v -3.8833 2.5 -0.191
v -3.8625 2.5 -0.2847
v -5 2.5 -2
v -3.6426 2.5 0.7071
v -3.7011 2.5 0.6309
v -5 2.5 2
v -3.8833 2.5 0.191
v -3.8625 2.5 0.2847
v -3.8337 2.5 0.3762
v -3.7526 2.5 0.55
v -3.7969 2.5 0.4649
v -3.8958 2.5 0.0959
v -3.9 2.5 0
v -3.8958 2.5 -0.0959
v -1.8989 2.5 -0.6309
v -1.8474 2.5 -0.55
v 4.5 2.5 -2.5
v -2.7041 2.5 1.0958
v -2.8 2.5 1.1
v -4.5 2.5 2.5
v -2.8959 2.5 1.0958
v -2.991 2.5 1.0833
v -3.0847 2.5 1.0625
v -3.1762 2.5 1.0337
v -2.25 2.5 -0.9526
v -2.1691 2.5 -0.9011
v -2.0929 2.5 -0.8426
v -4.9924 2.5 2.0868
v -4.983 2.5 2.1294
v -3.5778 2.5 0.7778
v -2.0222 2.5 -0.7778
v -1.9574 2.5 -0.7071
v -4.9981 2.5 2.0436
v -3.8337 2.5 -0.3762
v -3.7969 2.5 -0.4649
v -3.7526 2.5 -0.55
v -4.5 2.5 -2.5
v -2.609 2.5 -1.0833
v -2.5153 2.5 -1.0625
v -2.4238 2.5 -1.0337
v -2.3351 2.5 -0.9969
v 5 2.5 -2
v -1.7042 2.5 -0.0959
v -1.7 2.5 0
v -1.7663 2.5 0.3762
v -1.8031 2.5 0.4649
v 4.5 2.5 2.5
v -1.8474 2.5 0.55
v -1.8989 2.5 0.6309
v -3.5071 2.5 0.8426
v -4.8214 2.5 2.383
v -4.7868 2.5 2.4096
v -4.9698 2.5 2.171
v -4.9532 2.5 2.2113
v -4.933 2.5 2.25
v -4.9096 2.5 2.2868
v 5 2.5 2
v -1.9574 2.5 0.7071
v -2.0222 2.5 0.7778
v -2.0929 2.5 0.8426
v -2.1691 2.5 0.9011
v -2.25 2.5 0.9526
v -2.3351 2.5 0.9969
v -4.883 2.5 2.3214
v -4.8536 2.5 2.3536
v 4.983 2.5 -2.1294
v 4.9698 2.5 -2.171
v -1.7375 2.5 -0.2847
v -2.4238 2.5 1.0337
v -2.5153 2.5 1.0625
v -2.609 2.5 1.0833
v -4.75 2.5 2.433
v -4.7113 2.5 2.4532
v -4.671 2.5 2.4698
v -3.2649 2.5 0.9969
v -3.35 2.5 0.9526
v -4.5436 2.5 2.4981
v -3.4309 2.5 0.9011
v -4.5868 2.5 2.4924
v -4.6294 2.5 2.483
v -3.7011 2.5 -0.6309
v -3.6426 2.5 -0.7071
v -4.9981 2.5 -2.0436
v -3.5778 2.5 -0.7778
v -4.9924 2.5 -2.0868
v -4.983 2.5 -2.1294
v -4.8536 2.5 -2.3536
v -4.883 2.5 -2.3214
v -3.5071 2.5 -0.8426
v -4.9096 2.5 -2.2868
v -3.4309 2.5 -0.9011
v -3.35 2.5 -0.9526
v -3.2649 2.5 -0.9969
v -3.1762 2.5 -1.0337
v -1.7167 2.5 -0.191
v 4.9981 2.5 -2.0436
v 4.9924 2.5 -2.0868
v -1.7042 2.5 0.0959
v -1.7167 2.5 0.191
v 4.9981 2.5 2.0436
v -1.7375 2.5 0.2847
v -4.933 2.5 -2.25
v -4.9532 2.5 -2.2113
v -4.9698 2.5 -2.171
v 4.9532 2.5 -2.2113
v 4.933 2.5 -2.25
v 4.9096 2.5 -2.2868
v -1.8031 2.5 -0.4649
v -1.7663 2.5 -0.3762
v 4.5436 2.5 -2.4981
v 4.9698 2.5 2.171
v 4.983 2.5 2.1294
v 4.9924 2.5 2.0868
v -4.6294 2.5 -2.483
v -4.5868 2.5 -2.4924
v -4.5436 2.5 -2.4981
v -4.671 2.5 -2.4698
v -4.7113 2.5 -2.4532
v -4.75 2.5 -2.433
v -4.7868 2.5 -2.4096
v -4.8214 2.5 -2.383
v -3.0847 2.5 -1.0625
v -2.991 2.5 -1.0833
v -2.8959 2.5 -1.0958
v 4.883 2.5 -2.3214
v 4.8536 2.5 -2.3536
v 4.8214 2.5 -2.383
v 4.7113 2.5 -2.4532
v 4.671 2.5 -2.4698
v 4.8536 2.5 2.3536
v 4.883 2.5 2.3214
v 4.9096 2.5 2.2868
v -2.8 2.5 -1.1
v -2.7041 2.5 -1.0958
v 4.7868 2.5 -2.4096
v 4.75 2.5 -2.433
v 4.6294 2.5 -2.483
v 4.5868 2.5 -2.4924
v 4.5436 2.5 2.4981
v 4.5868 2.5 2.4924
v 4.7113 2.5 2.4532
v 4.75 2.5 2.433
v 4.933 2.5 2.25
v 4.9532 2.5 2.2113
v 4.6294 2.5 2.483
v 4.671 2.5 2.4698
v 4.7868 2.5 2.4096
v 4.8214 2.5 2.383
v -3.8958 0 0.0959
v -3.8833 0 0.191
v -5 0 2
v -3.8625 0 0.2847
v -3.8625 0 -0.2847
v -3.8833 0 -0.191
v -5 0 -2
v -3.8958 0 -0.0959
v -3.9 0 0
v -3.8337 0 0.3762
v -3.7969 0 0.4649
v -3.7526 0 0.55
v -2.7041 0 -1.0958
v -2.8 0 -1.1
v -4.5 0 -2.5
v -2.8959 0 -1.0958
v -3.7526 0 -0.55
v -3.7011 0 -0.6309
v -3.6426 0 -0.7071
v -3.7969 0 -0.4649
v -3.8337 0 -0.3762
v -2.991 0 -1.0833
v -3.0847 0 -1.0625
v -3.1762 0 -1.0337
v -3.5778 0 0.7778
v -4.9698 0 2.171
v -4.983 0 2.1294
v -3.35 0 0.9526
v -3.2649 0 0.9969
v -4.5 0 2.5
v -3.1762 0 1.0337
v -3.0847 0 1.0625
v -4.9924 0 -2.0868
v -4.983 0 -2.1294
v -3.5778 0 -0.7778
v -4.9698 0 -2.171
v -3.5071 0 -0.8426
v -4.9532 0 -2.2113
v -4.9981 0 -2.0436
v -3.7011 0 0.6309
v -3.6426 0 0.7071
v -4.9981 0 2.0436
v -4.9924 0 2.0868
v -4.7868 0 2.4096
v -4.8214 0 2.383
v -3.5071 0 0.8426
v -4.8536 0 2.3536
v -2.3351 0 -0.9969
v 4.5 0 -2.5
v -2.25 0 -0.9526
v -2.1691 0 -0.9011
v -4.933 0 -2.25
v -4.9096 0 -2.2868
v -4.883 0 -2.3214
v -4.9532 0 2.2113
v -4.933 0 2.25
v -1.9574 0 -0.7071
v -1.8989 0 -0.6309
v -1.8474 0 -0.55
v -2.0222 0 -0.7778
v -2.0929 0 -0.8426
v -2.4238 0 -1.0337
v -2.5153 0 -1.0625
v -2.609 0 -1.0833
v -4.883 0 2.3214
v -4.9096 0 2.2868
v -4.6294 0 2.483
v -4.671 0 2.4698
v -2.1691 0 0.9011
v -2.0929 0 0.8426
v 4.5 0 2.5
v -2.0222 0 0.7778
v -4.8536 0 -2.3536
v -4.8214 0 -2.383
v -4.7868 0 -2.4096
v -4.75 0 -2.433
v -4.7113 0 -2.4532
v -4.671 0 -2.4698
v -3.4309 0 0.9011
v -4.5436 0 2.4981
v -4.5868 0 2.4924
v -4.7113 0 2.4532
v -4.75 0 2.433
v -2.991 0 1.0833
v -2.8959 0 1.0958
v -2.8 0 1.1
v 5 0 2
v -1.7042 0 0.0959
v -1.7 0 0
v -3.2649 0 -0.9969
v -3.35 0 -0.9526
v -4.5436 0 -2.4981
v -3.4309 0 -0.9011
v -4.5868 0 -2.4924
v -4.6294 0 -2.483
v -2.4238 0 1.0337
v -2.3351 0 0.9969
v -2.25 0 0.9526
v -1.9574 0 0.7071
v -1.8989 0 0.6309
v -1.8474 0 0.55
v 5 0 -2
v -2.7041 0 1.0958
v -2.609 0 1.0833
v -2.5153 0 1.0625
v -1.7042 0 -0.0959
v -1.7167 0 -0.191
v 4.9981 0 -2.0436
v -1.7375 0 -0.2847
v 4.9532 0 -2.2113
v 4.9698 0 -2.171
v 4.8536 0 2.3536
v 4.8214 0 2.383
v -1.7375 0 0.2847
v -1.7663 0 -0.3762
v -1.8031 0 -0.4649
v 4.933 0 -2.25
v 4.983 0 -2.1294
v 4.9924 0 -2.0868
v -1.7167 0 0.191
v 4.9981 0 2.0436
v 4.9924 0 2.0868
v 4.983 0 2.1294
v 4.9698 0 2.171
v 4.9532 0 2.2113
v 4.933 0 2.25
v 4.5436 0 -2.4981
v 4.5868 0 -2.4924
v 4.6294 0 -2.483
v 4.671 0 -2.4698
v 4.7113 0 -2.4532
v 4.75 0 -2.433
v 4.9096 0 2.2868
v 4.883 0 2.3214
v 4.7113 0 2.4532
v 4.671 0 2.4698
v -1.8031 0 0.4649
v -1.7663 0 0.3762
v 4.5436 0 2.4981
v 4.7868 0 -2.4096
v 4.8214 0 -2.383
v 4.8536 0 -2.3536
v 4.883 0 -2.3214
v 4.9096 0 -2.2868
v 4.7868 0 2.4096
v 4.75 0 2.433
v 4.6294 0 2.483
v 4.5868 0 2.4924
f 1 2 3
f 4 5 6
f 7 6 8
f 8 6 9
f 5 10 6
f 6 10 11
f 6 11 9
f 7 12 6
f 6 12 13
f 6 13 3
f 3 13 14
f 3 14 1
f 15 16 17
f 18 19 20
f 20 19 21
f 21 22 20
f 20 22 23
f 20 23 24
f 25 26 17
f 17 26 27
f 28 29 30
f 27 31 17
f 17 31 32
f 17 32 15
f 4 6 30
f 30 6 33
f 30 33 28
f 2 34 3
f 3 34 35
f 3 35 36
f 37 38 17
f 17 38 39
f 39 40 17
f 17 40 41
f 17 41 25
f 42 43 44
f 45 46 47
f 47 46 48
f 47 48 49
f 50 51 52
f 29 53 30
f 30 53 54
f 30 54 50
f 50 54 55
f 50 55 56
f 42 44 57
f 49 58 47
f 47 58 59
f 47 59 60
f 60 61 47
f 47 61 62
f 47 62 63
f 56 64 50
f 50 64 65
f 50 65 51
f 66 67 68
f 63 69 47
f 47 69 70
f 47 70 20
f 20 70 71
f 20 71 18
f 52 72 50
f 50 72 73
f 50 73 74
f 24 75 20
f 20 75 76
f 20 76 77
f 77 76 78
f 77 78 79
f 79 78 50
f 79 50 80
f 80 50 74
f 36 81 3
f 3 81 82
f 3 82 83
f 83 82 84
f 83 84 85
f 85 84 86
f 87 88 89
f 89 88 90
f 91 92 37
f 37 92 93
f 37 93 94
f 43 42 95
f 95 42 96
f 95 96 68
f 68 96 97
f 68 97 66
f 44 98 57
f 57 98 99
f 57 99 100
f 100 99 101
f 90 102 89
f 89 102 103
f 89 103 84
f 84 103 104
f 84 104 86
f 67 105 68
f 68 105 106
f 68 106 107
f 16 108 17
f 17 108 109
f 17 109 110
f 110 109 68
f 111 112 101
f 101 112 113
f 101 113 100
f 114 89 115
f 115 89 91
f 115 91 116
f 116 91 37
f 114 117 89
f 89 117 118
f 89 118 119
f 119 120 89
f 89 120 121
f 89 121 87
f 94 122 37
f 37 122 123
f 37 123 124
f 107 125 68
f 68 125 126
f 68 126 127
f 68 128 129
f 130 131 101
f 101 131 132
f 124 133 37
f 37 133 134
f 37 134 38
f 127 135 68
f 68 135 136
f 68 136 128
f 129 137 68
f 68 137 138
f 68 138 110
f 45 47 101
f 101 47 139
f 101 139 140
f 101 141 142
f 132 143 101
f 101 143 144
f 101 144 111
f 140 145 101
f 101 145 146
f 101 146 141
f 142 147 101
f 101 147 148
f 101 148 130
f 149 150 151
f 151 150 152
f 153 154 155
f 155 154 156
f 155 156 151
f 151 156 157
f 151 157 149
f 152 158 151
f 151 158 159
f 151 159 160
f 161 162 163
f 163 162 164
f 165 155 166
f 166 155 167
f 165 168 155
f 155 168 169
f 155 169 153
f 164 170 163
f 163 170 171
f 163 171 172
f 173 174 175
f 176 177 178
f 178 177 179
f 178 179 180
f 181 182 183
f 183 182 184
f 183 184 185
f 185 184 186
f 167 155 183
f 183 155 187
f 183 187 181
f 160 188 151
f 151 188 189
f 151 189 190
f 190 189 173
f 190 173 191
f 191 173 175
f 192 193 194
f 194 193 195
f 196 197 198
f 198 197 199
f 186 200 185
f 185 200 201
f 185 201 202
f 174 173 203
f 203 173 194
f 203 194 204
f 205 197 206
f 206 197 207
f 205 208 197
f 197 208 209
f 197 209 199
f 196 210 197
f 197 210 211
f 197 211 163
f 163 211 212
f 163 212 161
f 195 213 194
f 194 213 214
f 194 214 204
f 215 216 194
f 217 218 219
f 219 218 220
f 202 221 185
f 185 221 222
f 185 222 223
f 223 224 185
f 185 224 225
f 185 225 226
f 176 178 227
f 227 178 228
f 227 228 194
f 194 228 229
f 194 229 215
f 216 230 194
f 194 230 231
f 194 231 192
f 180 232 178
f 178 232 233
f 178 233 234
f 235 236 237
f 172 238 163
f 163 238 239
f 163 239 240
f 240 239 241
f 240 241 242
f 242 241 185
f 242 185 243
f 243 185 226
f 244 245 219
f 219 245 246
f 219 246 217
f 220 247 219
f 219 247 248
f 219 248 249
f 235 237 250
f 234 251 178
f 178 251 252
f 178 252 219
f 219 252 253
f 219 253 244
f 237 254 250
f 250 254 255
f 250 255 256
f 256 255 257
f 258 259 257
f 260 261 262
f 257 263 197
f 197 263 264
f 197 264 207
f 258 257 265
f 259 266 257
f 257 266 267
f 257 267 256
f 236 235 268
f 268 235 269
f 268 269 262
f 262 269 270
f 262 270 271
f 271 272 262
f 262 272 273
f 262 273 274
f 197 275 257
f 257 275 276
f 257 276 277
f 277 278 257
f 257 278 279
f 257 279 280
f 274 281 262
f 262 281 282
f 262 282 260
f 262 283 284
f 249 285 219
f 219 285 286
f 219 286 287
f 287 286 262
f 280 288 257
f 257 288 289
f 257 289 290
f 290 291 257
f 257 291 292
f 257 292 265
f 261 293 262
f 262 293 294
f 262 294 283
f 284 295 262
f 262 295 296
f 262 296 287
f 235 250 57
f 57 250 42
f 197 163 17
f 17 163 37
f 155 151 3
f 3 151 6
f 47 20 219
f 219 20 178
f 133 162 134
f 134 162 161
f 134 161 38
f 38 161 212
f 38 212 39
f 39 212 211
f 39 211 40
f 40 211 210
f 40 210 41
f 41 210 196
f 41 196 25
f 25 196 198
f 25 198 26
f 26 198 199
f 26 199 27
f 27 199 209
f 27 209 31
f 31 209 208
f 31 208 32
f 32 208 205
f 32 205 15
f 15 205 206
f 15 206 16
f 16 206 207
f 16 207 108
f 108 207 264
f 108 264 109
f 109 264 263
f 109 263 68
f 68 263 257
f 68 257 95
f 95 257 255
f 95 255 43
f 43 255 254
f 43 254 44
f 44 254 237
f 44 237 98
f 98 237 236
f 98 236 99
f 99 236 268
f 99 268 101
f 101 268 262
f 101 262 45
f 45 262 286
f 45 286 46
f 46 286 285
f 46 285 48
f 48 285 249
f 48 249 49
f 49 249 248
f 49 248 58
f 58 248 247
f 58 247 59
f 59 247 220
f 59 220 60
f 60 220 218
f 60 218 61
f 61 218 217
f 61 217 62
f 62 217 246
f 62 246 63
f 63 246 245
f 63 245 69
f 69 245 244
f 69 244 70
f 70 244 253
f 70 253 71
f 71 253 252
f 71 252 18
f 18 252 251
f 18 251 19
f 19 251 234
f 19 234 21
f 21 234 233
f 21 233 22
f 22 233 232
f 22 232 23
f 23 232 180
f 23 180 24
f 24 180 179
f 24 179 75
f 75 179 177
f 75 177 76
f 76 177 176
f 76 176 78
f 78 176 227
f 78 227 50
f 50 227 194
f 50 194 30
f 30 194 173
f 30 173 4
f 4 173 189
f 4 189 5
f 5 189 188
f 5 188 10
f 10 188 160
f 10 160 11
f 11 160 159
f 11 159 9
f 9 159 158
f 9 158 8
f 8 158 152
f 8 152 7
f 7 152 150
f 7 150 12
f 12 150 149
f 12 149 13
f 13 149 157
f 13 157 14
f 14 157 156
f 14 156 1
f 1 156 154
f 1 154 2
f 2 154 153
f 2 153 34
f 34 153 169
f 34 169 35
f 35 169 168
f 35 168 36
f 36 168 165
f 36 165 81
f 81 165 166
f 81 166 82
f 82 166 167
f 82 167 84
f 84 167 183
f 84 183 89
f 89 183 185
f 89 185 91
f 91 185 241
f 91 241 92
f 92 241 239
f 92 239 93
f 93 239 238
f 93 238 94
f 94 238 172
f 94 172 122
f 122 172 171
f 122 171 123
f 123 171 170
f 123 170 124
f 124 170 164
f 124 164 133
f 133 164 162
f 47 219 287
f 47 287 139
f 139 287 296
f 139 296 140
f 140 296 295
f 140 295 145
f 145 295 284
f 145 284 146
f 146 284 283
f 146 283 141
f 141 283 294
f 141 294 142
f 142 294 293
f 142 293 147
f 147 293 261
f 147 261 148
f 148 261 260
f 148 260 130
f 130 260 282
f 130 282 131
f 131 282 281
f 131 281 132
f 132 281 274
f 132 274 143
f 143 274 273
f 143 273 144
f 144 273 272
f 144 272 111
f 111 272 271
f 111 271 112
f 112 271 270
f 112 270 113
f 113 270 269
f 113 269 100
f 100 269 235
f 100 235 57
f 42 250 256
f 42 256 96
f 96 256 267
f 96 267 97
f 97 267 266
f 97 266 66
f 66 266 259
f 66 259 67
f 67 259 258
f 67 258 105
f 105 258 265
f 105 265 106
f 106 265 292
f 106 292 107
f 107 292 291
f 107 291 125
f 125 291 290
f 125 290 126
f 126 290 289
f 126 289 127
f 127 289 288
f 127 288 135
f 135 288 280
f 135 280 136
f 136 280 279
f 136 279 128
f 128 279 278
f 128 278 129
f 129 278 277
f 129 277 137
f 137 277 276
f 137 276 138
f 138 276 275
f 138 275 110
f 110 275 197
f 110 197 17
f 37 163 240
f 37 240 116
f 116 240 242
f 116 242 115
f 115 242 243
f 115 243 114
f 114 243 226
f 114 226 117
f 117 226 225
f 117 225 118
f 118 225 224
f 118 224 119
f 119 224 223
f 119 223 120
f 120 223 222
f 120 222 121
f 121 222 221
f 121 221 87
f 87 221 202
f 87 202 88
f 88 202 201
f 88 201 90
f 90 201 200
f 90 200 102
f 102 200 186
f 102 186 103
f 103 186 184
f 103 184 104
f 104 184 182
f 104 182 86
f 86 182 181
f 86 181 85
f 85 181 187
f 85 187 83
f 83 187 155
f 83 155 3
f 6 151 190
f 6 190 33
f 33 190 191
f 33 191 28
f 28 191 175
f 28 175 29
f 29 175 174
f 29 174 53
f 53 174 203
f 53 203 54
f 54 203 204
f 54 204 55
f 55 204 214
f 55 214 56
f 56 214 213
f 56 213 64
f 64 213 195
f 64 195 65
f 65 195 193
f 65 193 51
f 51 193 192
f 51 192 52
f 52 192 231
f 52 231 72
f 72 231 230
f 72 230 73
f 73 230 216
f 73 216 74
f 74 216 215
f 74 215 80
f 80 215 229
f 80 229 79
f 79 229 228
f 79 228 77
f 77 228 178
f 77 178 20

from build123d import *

# Parameters (mm, degrees)
SKETCH1_W           = 10
SKETCH1_H           = 5
SKETCH1_R           = 1.1
BOSS_EXTRUDE1_DEPTH = 2.5
FILLET1_R           = 0.5


with BuildPart() as part:
    # Sketch1 → Boss-Extrude1 (new body)
    with BuildSketch(Plane(origin=(0, 0, 0), x_dir=(1, 0, 0), z_dir=(0, 1, 0))):
        Rectangle(SKETCH1_W, SKETCH1_H)
        with Locations((-2.8, 0)):
            Circle(SKETCH1_R, mode=Mode.SUBTRACT)
    extrude(amount=BOSS_EXTRUDE1_DEPTH)

    # Fillet1
    fillet1_edges = [part.edges().sort_by_distance(p)[0] for p in [
        (5, 1.25, 2.5),
        (-5, 1.25, 2.5),
        (-5, 1.25, -2.5),
        (5, 1.25, -2.5),
    ]]
    fillet(fillet1_edges, radius=FILLET1_R)


solid = part.part
